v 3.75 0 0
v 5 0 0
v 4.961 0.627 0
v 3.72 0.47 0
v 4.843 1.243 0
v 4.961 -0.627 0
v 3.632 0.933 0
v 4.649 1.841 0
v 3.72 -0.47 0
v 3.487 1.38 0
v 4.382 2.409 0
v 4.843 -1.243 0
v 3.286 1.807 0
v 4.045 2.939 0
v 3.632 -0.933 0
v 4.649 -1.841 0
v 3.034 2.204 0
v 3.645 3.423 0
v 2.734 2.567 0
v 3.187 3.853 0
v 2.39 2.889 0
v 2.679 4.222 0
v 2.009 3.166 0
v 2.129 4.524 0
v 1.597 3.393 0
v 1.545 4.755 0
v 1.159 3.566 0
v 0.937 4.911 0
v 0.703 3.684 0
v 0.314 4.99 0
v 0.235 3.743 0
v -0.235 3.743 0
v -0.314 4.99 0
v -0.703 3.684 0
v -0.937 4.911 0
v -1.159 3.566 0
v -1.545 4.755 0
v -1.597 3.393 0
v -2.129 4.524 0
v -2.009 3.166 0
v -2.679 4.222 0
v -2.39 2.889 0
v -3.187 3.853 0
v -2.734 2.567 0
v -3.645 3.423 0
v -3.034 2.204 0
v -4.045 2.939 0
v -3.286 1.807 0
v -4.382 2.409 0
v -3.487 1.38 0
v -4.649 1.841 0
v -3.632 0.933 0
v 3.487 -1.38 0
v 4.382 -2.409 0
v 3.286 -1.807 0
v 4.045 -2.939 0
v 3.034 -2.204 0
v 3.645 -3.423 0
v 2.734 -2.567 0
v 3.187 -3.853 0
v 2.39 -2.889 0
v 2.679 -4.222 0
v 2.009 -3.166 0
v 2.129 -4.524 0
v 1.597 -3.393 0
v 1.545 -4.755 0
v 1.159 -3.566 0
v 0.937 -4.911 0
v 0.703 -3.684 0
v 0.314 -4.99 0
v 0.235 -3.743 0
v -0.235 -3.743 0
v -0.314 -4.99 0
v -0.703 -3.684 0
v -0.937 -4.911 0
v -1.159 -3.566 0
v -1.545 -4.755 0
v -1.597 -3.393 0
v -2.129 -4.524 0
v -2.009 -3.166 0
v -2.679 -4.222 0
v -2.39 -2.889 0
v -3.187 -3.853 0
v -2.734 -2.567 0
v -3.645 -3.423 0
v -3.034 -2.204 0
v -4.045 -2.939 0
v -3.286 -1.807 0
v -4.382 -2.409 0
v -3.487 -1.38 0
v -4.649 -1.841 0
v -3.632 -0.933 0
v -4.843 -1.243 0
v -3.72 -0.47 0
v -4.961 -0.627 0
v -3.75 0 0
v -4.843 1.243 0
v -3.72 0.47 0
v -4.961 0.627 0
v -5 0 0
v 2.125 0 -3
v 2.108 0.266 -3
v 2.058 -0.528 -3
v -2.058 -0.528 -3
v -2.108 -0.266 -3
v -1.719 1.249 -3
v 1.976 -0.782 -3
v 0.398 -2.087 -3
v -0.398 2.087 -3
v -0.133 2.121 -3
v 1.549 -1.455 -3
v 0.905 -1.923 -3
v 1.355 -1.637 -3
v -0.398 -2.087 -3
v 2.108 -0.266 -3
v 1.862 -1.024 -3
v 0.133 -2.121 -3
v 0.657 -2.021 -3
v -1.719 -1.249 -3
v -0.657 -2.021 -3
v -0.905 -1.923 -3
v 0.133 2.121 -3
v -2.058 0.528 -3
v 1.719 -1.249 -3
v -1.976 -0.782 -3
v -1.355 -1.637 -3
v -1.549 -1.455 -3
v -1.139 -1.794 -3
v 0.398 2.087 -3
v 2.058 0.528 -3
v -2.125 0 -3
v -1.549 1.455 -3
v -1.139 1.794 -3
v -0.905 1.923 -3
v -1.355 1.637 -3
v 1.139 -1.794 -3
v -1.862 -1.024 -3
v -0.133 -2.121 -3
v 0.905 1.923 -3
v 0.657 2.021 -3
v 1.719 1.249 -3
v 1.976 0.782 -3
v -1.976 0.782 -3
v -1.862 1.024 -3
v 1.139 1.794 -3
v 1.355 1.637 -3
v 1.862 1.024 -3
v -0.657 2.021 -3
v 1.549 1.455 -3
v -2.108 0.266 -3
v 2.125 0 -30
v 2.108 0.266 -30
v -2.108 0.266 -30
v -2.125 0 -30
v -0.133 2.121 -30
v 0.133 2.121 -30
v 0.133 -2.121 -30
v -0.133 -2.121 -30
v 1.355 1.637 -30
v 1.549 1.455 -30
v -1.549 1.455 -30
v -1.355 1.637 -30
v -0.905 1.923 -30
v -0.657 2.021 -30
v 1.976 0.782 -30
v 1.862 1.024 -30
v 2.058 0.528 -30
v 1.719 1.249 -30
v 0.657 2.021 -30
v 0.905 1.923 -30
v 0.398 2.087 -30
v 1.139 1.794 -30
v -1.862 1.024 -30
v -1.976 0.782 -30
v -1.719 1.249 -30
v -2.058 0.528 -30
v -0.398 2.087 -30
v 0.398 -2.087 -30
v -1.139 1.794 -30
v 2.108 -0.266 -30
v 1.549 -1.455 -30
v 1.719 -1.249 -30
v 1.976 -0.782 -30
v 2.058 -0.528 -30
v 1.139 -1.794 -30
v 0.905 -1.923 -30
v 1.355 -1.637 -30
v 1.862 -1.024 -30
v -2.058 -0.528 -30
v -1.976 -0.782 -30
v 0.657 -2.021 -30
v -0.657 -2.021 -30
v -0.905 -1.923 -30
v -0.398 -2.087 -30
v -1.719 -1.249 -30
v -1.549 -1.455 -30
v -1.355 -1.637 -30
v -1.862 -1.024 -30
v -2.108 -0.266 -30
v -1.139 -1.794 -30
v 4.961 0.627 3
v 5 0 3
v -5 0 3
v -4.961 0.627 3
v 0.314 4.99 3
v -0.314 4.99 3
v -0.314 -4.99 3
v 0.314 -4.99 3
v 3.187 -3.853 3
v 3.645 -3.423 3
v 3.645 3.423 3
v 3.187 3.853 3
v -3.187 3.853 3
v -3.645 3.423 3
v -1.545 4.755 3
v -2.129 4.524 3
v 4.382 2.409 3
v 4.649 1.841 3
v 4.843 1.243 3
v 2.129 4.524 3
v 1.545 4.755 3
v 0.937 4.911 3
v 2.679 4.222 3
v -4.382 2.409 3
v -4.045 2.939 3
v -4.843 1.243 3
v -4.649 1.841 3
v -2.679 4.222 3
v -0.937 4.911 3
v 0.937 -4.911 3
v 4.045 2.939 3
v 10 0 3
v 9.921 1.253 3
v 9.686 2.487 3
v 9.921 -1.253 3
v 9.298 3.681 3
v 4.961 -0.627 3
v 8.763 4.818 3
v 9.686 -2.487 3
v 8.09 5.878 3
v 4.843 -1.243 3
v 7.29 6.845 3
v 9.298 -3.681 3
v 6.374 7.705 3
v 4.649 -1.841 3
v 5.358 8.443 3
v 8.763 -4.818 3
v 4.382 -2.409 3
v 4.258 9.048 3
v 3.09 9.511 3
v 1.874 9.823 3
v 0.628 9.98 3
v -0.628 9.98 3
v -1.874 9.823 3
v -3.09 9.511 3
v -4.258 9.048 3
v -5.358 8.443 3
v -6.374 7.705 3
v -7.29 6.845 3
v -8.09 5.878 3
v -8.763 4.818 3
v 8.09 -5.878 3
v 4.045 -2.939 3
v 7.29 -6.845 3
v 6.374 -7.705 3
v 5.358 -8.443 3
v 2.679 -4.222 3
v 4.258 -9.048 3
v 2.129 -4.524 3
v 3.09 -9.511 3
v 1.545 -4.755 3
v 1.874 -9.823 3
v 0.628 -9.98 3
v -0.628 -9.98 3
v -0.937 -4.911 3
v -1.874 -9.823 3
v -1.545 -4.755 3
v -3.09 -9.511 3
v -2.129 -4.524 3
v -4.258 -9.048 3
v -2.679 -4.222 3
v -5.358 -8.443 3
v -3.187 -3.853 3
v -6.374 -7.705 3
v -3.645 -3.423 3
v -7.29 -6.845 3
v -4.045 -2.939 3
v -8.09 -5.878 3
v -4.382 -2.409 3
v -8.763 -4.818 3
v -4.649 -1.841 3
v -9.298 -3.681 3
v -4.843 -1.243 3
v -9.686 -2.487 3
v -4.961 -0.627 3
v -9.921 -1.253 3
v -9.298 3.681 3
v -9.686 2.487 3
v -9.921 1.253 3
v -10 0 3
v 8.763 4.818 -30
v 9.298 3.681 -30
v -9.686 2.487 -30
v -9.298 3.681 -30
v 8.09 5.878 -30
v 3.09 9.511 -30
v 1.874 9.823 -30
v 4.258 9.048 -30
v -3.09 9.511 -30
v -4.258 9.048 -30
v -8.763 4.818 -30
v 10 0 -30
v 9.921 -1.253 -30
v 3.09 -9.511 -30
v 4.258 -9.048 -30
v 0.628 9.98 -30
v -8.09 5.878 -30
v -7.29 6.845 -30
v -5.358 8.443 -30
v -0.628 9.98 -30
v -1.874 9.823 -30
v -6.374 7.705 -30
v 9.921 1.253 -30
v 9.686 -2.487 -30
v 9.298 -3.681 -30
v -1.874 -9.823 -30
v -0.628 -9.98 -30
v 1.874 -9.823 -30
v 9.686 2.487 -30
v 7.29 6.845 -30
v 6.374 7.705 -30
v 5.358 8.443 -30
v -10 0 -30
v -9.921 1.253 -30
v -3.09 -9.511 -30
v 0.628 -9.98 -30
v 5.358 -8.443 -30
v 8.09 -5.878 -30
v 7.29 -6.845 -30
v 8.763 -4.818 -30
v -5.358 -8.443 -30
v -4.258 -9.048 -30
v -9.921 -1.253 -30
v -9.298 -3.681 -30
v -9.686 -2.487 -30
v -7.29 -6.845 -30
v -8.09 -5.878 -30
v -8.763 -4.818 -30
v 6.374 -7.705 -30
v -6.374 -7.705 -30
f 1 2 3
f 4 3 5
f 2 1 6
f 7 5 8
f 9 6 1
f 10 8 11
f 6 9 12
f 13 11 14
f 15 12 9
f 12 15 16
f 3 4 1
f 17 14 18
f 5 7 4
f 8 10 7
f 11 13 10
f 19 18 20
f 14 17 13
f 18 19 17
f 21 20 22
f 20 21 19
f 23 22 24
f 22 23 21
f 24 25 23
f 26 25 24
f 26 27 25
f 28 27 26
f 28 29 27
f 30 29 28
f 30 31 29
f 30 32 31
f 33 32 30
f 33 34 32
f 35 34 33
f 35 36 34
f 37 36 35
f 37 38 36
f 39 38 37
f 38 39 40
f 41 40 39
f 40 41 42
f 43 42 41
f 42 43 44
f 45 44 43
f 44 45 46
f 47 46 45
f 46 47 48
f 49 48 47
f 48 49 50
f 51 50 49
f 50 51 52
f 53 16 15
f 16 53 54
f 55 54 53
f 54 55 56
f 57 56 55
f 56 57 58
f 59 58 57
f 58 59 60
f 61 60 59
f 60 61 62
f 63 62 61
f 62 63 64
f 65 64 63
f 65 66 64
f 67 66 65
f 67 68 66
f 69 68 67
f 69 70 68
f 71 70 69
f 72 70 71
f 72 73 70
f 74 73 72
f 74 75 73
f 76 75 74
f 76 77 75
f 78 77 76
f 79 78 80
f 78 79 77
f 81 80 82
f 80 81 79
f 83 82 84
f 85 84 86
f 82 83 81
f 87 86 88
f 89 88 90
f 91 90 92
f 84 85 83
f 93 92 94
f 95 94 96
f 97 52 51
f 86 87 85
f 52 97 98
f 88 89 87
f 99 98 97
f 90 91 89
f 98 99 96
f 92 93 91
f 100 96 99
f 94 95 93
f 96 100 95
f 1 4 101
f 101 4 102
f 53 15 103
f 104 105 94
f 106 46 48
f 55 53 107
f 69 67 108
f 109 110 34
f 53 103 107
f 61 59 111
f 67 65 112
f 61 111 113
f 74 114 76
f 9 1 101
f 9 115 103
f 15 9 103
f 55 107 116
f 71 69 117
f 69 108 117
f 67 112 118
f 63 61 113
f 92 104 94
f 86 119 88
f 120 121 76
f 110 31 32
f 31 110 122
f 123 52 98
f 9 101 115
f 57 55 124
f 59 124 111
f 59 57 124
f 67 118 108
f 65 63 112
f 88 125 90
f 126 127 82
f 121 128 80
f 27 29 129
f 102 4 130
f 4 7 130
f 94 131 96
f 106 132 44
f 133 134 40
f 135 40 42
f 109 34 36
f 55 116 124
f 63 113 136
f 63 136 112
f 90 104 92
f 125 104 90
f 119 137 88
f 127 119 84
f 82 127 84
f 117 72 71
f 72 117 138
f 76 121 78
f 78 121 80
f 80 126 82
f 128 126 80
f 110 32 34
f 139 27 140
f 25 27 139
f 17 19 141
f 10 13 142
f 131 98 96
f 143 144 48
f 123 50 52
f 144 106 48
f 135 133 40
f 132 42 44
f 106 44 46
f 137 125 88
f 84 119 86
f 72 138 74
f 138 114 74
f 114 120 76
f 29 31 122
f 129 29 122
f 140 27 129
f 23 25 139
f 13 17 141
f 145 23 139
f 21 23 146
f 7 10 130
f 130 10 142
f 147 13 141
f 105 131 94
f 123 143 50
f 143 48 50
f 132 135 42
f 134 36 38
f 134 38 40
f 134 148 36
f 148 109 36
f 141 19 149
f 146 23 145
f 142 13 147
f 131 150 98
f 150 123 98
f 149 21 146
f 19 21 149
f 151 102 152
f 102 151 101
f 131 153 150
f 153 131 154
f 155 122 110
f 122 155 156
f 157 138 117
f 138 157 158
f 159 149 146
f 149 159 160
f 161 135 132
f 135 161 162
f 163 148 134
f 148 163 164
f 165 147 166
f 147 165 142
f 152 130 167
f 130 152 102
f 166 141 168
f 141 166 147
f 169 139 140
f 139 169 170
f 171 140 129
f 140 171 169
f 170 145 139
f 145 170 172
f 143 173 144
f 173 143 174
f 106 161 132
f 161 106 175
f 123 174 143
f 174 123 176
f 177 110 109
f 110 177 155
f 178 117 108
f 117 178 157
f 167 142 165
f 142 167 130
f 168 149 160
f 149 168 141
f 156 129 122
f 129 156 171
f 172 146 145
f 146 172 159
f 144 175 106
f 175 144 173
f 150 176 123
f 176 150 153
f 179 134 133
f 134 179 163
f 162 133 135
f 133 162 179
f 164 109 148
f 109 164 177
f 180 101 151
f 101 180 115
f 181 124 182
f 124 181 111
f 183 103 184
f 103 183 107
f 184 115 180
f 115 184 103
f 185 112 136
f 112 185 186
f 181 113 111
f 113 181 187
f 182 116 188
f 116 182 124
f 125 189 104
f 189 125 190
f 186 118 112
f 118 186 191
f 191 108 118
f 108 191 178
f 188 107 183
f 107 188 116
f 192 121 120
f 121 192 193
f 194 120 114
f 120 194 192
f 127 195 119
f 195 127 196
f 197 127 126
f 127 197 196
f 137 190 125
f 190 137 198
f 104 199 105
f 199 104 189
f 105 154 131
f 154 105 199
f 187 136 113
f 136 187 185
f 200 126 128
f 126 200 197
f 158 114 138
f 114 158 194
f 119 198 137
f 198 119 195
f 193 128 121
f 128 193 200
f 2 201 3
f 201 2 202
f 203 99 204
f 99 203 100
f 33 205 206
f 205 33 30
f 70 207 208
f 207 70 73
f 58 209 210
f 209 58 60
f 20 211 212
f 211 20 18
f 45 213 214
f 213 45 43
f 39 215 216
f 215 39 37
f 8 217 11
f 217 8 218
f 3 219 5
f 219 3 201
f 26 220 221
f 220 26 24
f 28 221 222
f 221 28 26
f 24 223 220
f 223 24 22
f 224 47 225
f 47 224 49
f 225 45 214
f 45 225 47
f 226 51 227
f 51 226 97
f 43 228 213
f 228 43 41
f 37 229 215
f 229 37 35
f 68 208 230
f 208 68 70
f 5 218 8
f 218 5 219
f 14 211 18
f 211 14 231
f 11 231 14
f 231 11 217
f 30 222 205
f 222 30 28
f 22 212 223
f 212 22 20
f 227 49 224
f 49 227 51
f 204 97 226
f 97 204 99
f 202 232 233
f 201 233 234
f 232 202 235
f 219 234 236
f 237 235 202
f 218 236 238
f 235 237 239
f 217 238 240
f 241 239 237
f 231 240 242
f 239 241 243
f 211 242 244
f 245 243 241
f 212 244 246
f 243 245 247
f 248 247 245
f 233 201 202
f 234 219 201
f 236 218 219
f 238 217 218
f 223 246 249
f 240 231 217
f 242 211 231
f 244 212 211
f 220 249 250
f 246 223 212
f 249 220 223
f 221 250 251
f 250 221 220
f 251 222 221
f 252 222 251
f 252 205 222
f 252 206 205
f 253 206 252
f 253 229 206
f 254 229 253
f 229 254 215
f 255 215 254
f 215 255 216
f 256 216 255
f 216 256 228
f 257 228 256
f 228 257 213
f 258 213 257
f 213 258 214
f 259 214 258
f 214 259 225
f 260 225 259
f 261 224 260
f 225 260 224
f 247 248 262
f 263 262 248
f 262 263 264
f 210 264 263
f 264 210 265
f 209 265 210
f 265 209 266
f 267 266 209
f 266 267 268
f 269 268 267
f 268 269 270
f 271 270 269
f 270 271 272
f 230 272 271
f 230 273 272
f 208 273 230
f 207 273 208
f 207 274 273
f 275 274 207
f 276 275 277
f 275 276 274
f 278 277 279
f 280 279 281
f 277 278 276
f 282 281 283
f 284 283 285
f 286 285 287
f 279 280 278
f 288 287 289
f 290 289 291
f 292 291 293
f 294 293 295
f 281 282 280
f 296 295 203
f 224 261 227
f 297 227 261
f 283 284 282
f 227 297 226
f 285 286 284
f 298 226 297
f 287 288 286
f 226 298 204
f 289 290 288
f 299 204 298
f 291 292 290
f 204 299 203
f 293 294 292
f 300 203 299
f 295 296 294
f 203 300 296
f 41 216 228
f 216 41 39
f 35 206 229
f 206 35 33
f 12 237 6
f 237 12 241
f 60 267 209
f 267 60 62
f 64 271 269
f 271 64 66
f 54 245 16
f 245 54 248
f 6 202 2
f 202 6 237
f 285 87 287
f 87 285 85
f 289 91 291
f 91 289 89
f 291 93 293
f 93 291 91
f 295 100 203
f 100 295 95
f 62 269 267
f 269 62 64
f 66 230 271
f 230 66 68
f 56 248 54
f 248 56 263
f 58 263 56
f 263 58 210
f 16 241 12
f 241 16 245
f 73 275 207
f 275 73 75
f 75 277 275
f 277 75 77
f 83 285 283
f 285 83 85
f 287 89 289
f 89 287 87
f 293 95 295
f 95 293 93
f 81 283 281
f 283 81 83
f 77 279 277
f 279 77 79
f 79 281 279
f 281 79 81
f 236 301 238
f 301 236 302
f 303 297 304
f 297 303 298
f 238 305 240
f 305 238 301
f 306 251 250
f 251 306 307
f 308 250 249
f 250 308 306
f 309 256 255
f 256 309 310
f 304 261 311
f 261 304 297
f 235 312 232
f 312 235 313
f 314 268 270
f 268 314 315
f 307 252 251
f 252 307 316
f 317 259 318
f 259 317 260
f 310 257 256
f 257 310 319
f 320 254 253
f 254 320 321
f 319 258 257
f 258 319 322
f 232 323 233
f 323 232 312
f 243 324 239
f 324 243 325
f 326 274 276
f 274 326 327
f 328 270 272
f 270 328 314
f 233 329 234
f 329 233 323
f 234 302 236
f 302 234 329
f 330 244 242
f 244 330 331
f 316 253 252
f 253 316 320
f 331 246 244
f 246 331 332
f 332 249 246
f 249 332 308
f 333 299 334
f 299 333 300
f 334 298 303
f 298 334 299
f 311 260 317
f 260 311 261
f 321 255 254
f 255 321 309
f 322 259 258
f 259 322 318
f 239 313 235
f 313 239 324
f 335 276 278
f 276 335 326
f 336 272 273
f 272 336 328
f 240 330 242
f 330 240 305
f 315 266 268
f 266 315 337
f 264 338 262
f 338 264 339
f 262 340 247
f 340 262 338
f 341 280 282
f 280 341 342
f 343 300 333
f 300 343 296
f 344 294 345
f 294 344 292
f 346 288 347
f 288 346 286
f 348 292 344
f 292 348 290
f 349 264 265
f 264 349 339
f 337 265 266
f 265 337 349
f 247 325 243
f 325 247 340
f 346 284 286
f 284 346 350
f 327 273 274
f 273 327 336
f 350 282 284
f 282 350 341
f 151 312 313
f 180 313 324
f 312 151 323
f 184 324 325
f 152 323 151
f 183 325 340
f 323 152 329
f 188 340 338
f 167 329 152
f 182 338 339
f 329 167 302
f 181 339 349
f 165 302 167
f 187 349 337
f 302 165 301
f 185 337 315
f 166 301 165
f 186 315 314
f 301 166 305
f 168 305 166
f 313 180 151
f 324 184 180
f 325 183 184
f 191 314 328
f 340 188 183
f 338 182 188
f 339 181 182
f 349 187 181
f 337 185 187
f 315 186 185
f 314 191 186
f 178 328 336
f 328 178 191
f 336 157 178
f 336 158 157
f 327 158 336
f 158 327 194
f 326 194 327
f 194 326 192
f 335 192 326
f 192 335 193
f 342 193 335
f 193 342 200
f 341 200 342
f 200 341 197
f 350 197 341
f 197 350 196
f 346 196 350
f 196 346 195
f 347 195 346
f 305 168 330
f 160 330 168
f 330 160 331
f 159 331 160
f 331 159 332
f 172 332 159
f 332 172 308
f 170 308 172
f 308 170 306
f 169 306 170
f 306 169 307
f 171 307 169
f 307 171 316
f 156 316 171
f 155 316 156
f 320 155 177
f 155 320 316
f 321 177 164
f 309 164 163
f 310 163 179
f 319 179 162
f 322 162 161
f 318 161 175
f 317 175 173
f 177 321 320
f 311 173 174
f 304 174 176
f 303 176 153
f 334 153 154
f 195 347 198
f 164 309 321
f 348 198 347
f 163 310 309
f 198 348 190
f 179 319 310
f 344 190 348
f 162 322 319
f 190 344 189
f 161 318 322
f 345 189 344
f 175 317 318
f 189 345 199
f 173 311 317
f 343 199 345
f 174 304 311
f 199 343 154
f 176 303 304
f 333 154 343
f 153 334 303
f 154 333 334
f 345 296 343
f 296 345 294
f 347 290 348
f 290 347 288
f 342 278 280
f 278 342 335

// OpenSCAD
$fn = 50;

difference() {
	union() {
		translate(v = [0, 0, -30.0]) {
			cylinder(h = 33, r = 10.0);
		}
	}
	union() {
		translate(v = [0, 0, 0]) {
			rotate(a = [0, 0, 0]) {
				difference() {
					union() {
						translate(v = [0, 0, -33.0]) {
							cylinder(h = 33, r = 2.0);
						}
						translate(v = [0, 0, -3]) {
							cylinder(h = 3, r1 = 2.125, r2 = 3.75);
						}
						translate(v = [0, 0, -33.0]) {
							cylinder(h = 33, r = 2.125);
						}
						translate(v = [0, 0, -33.0]) {
							cylinder(h = 33, r = 2.0);
						}
					}
					union();
				}
			}
		}
		#cylinder(h = 3, r = 5.0);
	}
}
